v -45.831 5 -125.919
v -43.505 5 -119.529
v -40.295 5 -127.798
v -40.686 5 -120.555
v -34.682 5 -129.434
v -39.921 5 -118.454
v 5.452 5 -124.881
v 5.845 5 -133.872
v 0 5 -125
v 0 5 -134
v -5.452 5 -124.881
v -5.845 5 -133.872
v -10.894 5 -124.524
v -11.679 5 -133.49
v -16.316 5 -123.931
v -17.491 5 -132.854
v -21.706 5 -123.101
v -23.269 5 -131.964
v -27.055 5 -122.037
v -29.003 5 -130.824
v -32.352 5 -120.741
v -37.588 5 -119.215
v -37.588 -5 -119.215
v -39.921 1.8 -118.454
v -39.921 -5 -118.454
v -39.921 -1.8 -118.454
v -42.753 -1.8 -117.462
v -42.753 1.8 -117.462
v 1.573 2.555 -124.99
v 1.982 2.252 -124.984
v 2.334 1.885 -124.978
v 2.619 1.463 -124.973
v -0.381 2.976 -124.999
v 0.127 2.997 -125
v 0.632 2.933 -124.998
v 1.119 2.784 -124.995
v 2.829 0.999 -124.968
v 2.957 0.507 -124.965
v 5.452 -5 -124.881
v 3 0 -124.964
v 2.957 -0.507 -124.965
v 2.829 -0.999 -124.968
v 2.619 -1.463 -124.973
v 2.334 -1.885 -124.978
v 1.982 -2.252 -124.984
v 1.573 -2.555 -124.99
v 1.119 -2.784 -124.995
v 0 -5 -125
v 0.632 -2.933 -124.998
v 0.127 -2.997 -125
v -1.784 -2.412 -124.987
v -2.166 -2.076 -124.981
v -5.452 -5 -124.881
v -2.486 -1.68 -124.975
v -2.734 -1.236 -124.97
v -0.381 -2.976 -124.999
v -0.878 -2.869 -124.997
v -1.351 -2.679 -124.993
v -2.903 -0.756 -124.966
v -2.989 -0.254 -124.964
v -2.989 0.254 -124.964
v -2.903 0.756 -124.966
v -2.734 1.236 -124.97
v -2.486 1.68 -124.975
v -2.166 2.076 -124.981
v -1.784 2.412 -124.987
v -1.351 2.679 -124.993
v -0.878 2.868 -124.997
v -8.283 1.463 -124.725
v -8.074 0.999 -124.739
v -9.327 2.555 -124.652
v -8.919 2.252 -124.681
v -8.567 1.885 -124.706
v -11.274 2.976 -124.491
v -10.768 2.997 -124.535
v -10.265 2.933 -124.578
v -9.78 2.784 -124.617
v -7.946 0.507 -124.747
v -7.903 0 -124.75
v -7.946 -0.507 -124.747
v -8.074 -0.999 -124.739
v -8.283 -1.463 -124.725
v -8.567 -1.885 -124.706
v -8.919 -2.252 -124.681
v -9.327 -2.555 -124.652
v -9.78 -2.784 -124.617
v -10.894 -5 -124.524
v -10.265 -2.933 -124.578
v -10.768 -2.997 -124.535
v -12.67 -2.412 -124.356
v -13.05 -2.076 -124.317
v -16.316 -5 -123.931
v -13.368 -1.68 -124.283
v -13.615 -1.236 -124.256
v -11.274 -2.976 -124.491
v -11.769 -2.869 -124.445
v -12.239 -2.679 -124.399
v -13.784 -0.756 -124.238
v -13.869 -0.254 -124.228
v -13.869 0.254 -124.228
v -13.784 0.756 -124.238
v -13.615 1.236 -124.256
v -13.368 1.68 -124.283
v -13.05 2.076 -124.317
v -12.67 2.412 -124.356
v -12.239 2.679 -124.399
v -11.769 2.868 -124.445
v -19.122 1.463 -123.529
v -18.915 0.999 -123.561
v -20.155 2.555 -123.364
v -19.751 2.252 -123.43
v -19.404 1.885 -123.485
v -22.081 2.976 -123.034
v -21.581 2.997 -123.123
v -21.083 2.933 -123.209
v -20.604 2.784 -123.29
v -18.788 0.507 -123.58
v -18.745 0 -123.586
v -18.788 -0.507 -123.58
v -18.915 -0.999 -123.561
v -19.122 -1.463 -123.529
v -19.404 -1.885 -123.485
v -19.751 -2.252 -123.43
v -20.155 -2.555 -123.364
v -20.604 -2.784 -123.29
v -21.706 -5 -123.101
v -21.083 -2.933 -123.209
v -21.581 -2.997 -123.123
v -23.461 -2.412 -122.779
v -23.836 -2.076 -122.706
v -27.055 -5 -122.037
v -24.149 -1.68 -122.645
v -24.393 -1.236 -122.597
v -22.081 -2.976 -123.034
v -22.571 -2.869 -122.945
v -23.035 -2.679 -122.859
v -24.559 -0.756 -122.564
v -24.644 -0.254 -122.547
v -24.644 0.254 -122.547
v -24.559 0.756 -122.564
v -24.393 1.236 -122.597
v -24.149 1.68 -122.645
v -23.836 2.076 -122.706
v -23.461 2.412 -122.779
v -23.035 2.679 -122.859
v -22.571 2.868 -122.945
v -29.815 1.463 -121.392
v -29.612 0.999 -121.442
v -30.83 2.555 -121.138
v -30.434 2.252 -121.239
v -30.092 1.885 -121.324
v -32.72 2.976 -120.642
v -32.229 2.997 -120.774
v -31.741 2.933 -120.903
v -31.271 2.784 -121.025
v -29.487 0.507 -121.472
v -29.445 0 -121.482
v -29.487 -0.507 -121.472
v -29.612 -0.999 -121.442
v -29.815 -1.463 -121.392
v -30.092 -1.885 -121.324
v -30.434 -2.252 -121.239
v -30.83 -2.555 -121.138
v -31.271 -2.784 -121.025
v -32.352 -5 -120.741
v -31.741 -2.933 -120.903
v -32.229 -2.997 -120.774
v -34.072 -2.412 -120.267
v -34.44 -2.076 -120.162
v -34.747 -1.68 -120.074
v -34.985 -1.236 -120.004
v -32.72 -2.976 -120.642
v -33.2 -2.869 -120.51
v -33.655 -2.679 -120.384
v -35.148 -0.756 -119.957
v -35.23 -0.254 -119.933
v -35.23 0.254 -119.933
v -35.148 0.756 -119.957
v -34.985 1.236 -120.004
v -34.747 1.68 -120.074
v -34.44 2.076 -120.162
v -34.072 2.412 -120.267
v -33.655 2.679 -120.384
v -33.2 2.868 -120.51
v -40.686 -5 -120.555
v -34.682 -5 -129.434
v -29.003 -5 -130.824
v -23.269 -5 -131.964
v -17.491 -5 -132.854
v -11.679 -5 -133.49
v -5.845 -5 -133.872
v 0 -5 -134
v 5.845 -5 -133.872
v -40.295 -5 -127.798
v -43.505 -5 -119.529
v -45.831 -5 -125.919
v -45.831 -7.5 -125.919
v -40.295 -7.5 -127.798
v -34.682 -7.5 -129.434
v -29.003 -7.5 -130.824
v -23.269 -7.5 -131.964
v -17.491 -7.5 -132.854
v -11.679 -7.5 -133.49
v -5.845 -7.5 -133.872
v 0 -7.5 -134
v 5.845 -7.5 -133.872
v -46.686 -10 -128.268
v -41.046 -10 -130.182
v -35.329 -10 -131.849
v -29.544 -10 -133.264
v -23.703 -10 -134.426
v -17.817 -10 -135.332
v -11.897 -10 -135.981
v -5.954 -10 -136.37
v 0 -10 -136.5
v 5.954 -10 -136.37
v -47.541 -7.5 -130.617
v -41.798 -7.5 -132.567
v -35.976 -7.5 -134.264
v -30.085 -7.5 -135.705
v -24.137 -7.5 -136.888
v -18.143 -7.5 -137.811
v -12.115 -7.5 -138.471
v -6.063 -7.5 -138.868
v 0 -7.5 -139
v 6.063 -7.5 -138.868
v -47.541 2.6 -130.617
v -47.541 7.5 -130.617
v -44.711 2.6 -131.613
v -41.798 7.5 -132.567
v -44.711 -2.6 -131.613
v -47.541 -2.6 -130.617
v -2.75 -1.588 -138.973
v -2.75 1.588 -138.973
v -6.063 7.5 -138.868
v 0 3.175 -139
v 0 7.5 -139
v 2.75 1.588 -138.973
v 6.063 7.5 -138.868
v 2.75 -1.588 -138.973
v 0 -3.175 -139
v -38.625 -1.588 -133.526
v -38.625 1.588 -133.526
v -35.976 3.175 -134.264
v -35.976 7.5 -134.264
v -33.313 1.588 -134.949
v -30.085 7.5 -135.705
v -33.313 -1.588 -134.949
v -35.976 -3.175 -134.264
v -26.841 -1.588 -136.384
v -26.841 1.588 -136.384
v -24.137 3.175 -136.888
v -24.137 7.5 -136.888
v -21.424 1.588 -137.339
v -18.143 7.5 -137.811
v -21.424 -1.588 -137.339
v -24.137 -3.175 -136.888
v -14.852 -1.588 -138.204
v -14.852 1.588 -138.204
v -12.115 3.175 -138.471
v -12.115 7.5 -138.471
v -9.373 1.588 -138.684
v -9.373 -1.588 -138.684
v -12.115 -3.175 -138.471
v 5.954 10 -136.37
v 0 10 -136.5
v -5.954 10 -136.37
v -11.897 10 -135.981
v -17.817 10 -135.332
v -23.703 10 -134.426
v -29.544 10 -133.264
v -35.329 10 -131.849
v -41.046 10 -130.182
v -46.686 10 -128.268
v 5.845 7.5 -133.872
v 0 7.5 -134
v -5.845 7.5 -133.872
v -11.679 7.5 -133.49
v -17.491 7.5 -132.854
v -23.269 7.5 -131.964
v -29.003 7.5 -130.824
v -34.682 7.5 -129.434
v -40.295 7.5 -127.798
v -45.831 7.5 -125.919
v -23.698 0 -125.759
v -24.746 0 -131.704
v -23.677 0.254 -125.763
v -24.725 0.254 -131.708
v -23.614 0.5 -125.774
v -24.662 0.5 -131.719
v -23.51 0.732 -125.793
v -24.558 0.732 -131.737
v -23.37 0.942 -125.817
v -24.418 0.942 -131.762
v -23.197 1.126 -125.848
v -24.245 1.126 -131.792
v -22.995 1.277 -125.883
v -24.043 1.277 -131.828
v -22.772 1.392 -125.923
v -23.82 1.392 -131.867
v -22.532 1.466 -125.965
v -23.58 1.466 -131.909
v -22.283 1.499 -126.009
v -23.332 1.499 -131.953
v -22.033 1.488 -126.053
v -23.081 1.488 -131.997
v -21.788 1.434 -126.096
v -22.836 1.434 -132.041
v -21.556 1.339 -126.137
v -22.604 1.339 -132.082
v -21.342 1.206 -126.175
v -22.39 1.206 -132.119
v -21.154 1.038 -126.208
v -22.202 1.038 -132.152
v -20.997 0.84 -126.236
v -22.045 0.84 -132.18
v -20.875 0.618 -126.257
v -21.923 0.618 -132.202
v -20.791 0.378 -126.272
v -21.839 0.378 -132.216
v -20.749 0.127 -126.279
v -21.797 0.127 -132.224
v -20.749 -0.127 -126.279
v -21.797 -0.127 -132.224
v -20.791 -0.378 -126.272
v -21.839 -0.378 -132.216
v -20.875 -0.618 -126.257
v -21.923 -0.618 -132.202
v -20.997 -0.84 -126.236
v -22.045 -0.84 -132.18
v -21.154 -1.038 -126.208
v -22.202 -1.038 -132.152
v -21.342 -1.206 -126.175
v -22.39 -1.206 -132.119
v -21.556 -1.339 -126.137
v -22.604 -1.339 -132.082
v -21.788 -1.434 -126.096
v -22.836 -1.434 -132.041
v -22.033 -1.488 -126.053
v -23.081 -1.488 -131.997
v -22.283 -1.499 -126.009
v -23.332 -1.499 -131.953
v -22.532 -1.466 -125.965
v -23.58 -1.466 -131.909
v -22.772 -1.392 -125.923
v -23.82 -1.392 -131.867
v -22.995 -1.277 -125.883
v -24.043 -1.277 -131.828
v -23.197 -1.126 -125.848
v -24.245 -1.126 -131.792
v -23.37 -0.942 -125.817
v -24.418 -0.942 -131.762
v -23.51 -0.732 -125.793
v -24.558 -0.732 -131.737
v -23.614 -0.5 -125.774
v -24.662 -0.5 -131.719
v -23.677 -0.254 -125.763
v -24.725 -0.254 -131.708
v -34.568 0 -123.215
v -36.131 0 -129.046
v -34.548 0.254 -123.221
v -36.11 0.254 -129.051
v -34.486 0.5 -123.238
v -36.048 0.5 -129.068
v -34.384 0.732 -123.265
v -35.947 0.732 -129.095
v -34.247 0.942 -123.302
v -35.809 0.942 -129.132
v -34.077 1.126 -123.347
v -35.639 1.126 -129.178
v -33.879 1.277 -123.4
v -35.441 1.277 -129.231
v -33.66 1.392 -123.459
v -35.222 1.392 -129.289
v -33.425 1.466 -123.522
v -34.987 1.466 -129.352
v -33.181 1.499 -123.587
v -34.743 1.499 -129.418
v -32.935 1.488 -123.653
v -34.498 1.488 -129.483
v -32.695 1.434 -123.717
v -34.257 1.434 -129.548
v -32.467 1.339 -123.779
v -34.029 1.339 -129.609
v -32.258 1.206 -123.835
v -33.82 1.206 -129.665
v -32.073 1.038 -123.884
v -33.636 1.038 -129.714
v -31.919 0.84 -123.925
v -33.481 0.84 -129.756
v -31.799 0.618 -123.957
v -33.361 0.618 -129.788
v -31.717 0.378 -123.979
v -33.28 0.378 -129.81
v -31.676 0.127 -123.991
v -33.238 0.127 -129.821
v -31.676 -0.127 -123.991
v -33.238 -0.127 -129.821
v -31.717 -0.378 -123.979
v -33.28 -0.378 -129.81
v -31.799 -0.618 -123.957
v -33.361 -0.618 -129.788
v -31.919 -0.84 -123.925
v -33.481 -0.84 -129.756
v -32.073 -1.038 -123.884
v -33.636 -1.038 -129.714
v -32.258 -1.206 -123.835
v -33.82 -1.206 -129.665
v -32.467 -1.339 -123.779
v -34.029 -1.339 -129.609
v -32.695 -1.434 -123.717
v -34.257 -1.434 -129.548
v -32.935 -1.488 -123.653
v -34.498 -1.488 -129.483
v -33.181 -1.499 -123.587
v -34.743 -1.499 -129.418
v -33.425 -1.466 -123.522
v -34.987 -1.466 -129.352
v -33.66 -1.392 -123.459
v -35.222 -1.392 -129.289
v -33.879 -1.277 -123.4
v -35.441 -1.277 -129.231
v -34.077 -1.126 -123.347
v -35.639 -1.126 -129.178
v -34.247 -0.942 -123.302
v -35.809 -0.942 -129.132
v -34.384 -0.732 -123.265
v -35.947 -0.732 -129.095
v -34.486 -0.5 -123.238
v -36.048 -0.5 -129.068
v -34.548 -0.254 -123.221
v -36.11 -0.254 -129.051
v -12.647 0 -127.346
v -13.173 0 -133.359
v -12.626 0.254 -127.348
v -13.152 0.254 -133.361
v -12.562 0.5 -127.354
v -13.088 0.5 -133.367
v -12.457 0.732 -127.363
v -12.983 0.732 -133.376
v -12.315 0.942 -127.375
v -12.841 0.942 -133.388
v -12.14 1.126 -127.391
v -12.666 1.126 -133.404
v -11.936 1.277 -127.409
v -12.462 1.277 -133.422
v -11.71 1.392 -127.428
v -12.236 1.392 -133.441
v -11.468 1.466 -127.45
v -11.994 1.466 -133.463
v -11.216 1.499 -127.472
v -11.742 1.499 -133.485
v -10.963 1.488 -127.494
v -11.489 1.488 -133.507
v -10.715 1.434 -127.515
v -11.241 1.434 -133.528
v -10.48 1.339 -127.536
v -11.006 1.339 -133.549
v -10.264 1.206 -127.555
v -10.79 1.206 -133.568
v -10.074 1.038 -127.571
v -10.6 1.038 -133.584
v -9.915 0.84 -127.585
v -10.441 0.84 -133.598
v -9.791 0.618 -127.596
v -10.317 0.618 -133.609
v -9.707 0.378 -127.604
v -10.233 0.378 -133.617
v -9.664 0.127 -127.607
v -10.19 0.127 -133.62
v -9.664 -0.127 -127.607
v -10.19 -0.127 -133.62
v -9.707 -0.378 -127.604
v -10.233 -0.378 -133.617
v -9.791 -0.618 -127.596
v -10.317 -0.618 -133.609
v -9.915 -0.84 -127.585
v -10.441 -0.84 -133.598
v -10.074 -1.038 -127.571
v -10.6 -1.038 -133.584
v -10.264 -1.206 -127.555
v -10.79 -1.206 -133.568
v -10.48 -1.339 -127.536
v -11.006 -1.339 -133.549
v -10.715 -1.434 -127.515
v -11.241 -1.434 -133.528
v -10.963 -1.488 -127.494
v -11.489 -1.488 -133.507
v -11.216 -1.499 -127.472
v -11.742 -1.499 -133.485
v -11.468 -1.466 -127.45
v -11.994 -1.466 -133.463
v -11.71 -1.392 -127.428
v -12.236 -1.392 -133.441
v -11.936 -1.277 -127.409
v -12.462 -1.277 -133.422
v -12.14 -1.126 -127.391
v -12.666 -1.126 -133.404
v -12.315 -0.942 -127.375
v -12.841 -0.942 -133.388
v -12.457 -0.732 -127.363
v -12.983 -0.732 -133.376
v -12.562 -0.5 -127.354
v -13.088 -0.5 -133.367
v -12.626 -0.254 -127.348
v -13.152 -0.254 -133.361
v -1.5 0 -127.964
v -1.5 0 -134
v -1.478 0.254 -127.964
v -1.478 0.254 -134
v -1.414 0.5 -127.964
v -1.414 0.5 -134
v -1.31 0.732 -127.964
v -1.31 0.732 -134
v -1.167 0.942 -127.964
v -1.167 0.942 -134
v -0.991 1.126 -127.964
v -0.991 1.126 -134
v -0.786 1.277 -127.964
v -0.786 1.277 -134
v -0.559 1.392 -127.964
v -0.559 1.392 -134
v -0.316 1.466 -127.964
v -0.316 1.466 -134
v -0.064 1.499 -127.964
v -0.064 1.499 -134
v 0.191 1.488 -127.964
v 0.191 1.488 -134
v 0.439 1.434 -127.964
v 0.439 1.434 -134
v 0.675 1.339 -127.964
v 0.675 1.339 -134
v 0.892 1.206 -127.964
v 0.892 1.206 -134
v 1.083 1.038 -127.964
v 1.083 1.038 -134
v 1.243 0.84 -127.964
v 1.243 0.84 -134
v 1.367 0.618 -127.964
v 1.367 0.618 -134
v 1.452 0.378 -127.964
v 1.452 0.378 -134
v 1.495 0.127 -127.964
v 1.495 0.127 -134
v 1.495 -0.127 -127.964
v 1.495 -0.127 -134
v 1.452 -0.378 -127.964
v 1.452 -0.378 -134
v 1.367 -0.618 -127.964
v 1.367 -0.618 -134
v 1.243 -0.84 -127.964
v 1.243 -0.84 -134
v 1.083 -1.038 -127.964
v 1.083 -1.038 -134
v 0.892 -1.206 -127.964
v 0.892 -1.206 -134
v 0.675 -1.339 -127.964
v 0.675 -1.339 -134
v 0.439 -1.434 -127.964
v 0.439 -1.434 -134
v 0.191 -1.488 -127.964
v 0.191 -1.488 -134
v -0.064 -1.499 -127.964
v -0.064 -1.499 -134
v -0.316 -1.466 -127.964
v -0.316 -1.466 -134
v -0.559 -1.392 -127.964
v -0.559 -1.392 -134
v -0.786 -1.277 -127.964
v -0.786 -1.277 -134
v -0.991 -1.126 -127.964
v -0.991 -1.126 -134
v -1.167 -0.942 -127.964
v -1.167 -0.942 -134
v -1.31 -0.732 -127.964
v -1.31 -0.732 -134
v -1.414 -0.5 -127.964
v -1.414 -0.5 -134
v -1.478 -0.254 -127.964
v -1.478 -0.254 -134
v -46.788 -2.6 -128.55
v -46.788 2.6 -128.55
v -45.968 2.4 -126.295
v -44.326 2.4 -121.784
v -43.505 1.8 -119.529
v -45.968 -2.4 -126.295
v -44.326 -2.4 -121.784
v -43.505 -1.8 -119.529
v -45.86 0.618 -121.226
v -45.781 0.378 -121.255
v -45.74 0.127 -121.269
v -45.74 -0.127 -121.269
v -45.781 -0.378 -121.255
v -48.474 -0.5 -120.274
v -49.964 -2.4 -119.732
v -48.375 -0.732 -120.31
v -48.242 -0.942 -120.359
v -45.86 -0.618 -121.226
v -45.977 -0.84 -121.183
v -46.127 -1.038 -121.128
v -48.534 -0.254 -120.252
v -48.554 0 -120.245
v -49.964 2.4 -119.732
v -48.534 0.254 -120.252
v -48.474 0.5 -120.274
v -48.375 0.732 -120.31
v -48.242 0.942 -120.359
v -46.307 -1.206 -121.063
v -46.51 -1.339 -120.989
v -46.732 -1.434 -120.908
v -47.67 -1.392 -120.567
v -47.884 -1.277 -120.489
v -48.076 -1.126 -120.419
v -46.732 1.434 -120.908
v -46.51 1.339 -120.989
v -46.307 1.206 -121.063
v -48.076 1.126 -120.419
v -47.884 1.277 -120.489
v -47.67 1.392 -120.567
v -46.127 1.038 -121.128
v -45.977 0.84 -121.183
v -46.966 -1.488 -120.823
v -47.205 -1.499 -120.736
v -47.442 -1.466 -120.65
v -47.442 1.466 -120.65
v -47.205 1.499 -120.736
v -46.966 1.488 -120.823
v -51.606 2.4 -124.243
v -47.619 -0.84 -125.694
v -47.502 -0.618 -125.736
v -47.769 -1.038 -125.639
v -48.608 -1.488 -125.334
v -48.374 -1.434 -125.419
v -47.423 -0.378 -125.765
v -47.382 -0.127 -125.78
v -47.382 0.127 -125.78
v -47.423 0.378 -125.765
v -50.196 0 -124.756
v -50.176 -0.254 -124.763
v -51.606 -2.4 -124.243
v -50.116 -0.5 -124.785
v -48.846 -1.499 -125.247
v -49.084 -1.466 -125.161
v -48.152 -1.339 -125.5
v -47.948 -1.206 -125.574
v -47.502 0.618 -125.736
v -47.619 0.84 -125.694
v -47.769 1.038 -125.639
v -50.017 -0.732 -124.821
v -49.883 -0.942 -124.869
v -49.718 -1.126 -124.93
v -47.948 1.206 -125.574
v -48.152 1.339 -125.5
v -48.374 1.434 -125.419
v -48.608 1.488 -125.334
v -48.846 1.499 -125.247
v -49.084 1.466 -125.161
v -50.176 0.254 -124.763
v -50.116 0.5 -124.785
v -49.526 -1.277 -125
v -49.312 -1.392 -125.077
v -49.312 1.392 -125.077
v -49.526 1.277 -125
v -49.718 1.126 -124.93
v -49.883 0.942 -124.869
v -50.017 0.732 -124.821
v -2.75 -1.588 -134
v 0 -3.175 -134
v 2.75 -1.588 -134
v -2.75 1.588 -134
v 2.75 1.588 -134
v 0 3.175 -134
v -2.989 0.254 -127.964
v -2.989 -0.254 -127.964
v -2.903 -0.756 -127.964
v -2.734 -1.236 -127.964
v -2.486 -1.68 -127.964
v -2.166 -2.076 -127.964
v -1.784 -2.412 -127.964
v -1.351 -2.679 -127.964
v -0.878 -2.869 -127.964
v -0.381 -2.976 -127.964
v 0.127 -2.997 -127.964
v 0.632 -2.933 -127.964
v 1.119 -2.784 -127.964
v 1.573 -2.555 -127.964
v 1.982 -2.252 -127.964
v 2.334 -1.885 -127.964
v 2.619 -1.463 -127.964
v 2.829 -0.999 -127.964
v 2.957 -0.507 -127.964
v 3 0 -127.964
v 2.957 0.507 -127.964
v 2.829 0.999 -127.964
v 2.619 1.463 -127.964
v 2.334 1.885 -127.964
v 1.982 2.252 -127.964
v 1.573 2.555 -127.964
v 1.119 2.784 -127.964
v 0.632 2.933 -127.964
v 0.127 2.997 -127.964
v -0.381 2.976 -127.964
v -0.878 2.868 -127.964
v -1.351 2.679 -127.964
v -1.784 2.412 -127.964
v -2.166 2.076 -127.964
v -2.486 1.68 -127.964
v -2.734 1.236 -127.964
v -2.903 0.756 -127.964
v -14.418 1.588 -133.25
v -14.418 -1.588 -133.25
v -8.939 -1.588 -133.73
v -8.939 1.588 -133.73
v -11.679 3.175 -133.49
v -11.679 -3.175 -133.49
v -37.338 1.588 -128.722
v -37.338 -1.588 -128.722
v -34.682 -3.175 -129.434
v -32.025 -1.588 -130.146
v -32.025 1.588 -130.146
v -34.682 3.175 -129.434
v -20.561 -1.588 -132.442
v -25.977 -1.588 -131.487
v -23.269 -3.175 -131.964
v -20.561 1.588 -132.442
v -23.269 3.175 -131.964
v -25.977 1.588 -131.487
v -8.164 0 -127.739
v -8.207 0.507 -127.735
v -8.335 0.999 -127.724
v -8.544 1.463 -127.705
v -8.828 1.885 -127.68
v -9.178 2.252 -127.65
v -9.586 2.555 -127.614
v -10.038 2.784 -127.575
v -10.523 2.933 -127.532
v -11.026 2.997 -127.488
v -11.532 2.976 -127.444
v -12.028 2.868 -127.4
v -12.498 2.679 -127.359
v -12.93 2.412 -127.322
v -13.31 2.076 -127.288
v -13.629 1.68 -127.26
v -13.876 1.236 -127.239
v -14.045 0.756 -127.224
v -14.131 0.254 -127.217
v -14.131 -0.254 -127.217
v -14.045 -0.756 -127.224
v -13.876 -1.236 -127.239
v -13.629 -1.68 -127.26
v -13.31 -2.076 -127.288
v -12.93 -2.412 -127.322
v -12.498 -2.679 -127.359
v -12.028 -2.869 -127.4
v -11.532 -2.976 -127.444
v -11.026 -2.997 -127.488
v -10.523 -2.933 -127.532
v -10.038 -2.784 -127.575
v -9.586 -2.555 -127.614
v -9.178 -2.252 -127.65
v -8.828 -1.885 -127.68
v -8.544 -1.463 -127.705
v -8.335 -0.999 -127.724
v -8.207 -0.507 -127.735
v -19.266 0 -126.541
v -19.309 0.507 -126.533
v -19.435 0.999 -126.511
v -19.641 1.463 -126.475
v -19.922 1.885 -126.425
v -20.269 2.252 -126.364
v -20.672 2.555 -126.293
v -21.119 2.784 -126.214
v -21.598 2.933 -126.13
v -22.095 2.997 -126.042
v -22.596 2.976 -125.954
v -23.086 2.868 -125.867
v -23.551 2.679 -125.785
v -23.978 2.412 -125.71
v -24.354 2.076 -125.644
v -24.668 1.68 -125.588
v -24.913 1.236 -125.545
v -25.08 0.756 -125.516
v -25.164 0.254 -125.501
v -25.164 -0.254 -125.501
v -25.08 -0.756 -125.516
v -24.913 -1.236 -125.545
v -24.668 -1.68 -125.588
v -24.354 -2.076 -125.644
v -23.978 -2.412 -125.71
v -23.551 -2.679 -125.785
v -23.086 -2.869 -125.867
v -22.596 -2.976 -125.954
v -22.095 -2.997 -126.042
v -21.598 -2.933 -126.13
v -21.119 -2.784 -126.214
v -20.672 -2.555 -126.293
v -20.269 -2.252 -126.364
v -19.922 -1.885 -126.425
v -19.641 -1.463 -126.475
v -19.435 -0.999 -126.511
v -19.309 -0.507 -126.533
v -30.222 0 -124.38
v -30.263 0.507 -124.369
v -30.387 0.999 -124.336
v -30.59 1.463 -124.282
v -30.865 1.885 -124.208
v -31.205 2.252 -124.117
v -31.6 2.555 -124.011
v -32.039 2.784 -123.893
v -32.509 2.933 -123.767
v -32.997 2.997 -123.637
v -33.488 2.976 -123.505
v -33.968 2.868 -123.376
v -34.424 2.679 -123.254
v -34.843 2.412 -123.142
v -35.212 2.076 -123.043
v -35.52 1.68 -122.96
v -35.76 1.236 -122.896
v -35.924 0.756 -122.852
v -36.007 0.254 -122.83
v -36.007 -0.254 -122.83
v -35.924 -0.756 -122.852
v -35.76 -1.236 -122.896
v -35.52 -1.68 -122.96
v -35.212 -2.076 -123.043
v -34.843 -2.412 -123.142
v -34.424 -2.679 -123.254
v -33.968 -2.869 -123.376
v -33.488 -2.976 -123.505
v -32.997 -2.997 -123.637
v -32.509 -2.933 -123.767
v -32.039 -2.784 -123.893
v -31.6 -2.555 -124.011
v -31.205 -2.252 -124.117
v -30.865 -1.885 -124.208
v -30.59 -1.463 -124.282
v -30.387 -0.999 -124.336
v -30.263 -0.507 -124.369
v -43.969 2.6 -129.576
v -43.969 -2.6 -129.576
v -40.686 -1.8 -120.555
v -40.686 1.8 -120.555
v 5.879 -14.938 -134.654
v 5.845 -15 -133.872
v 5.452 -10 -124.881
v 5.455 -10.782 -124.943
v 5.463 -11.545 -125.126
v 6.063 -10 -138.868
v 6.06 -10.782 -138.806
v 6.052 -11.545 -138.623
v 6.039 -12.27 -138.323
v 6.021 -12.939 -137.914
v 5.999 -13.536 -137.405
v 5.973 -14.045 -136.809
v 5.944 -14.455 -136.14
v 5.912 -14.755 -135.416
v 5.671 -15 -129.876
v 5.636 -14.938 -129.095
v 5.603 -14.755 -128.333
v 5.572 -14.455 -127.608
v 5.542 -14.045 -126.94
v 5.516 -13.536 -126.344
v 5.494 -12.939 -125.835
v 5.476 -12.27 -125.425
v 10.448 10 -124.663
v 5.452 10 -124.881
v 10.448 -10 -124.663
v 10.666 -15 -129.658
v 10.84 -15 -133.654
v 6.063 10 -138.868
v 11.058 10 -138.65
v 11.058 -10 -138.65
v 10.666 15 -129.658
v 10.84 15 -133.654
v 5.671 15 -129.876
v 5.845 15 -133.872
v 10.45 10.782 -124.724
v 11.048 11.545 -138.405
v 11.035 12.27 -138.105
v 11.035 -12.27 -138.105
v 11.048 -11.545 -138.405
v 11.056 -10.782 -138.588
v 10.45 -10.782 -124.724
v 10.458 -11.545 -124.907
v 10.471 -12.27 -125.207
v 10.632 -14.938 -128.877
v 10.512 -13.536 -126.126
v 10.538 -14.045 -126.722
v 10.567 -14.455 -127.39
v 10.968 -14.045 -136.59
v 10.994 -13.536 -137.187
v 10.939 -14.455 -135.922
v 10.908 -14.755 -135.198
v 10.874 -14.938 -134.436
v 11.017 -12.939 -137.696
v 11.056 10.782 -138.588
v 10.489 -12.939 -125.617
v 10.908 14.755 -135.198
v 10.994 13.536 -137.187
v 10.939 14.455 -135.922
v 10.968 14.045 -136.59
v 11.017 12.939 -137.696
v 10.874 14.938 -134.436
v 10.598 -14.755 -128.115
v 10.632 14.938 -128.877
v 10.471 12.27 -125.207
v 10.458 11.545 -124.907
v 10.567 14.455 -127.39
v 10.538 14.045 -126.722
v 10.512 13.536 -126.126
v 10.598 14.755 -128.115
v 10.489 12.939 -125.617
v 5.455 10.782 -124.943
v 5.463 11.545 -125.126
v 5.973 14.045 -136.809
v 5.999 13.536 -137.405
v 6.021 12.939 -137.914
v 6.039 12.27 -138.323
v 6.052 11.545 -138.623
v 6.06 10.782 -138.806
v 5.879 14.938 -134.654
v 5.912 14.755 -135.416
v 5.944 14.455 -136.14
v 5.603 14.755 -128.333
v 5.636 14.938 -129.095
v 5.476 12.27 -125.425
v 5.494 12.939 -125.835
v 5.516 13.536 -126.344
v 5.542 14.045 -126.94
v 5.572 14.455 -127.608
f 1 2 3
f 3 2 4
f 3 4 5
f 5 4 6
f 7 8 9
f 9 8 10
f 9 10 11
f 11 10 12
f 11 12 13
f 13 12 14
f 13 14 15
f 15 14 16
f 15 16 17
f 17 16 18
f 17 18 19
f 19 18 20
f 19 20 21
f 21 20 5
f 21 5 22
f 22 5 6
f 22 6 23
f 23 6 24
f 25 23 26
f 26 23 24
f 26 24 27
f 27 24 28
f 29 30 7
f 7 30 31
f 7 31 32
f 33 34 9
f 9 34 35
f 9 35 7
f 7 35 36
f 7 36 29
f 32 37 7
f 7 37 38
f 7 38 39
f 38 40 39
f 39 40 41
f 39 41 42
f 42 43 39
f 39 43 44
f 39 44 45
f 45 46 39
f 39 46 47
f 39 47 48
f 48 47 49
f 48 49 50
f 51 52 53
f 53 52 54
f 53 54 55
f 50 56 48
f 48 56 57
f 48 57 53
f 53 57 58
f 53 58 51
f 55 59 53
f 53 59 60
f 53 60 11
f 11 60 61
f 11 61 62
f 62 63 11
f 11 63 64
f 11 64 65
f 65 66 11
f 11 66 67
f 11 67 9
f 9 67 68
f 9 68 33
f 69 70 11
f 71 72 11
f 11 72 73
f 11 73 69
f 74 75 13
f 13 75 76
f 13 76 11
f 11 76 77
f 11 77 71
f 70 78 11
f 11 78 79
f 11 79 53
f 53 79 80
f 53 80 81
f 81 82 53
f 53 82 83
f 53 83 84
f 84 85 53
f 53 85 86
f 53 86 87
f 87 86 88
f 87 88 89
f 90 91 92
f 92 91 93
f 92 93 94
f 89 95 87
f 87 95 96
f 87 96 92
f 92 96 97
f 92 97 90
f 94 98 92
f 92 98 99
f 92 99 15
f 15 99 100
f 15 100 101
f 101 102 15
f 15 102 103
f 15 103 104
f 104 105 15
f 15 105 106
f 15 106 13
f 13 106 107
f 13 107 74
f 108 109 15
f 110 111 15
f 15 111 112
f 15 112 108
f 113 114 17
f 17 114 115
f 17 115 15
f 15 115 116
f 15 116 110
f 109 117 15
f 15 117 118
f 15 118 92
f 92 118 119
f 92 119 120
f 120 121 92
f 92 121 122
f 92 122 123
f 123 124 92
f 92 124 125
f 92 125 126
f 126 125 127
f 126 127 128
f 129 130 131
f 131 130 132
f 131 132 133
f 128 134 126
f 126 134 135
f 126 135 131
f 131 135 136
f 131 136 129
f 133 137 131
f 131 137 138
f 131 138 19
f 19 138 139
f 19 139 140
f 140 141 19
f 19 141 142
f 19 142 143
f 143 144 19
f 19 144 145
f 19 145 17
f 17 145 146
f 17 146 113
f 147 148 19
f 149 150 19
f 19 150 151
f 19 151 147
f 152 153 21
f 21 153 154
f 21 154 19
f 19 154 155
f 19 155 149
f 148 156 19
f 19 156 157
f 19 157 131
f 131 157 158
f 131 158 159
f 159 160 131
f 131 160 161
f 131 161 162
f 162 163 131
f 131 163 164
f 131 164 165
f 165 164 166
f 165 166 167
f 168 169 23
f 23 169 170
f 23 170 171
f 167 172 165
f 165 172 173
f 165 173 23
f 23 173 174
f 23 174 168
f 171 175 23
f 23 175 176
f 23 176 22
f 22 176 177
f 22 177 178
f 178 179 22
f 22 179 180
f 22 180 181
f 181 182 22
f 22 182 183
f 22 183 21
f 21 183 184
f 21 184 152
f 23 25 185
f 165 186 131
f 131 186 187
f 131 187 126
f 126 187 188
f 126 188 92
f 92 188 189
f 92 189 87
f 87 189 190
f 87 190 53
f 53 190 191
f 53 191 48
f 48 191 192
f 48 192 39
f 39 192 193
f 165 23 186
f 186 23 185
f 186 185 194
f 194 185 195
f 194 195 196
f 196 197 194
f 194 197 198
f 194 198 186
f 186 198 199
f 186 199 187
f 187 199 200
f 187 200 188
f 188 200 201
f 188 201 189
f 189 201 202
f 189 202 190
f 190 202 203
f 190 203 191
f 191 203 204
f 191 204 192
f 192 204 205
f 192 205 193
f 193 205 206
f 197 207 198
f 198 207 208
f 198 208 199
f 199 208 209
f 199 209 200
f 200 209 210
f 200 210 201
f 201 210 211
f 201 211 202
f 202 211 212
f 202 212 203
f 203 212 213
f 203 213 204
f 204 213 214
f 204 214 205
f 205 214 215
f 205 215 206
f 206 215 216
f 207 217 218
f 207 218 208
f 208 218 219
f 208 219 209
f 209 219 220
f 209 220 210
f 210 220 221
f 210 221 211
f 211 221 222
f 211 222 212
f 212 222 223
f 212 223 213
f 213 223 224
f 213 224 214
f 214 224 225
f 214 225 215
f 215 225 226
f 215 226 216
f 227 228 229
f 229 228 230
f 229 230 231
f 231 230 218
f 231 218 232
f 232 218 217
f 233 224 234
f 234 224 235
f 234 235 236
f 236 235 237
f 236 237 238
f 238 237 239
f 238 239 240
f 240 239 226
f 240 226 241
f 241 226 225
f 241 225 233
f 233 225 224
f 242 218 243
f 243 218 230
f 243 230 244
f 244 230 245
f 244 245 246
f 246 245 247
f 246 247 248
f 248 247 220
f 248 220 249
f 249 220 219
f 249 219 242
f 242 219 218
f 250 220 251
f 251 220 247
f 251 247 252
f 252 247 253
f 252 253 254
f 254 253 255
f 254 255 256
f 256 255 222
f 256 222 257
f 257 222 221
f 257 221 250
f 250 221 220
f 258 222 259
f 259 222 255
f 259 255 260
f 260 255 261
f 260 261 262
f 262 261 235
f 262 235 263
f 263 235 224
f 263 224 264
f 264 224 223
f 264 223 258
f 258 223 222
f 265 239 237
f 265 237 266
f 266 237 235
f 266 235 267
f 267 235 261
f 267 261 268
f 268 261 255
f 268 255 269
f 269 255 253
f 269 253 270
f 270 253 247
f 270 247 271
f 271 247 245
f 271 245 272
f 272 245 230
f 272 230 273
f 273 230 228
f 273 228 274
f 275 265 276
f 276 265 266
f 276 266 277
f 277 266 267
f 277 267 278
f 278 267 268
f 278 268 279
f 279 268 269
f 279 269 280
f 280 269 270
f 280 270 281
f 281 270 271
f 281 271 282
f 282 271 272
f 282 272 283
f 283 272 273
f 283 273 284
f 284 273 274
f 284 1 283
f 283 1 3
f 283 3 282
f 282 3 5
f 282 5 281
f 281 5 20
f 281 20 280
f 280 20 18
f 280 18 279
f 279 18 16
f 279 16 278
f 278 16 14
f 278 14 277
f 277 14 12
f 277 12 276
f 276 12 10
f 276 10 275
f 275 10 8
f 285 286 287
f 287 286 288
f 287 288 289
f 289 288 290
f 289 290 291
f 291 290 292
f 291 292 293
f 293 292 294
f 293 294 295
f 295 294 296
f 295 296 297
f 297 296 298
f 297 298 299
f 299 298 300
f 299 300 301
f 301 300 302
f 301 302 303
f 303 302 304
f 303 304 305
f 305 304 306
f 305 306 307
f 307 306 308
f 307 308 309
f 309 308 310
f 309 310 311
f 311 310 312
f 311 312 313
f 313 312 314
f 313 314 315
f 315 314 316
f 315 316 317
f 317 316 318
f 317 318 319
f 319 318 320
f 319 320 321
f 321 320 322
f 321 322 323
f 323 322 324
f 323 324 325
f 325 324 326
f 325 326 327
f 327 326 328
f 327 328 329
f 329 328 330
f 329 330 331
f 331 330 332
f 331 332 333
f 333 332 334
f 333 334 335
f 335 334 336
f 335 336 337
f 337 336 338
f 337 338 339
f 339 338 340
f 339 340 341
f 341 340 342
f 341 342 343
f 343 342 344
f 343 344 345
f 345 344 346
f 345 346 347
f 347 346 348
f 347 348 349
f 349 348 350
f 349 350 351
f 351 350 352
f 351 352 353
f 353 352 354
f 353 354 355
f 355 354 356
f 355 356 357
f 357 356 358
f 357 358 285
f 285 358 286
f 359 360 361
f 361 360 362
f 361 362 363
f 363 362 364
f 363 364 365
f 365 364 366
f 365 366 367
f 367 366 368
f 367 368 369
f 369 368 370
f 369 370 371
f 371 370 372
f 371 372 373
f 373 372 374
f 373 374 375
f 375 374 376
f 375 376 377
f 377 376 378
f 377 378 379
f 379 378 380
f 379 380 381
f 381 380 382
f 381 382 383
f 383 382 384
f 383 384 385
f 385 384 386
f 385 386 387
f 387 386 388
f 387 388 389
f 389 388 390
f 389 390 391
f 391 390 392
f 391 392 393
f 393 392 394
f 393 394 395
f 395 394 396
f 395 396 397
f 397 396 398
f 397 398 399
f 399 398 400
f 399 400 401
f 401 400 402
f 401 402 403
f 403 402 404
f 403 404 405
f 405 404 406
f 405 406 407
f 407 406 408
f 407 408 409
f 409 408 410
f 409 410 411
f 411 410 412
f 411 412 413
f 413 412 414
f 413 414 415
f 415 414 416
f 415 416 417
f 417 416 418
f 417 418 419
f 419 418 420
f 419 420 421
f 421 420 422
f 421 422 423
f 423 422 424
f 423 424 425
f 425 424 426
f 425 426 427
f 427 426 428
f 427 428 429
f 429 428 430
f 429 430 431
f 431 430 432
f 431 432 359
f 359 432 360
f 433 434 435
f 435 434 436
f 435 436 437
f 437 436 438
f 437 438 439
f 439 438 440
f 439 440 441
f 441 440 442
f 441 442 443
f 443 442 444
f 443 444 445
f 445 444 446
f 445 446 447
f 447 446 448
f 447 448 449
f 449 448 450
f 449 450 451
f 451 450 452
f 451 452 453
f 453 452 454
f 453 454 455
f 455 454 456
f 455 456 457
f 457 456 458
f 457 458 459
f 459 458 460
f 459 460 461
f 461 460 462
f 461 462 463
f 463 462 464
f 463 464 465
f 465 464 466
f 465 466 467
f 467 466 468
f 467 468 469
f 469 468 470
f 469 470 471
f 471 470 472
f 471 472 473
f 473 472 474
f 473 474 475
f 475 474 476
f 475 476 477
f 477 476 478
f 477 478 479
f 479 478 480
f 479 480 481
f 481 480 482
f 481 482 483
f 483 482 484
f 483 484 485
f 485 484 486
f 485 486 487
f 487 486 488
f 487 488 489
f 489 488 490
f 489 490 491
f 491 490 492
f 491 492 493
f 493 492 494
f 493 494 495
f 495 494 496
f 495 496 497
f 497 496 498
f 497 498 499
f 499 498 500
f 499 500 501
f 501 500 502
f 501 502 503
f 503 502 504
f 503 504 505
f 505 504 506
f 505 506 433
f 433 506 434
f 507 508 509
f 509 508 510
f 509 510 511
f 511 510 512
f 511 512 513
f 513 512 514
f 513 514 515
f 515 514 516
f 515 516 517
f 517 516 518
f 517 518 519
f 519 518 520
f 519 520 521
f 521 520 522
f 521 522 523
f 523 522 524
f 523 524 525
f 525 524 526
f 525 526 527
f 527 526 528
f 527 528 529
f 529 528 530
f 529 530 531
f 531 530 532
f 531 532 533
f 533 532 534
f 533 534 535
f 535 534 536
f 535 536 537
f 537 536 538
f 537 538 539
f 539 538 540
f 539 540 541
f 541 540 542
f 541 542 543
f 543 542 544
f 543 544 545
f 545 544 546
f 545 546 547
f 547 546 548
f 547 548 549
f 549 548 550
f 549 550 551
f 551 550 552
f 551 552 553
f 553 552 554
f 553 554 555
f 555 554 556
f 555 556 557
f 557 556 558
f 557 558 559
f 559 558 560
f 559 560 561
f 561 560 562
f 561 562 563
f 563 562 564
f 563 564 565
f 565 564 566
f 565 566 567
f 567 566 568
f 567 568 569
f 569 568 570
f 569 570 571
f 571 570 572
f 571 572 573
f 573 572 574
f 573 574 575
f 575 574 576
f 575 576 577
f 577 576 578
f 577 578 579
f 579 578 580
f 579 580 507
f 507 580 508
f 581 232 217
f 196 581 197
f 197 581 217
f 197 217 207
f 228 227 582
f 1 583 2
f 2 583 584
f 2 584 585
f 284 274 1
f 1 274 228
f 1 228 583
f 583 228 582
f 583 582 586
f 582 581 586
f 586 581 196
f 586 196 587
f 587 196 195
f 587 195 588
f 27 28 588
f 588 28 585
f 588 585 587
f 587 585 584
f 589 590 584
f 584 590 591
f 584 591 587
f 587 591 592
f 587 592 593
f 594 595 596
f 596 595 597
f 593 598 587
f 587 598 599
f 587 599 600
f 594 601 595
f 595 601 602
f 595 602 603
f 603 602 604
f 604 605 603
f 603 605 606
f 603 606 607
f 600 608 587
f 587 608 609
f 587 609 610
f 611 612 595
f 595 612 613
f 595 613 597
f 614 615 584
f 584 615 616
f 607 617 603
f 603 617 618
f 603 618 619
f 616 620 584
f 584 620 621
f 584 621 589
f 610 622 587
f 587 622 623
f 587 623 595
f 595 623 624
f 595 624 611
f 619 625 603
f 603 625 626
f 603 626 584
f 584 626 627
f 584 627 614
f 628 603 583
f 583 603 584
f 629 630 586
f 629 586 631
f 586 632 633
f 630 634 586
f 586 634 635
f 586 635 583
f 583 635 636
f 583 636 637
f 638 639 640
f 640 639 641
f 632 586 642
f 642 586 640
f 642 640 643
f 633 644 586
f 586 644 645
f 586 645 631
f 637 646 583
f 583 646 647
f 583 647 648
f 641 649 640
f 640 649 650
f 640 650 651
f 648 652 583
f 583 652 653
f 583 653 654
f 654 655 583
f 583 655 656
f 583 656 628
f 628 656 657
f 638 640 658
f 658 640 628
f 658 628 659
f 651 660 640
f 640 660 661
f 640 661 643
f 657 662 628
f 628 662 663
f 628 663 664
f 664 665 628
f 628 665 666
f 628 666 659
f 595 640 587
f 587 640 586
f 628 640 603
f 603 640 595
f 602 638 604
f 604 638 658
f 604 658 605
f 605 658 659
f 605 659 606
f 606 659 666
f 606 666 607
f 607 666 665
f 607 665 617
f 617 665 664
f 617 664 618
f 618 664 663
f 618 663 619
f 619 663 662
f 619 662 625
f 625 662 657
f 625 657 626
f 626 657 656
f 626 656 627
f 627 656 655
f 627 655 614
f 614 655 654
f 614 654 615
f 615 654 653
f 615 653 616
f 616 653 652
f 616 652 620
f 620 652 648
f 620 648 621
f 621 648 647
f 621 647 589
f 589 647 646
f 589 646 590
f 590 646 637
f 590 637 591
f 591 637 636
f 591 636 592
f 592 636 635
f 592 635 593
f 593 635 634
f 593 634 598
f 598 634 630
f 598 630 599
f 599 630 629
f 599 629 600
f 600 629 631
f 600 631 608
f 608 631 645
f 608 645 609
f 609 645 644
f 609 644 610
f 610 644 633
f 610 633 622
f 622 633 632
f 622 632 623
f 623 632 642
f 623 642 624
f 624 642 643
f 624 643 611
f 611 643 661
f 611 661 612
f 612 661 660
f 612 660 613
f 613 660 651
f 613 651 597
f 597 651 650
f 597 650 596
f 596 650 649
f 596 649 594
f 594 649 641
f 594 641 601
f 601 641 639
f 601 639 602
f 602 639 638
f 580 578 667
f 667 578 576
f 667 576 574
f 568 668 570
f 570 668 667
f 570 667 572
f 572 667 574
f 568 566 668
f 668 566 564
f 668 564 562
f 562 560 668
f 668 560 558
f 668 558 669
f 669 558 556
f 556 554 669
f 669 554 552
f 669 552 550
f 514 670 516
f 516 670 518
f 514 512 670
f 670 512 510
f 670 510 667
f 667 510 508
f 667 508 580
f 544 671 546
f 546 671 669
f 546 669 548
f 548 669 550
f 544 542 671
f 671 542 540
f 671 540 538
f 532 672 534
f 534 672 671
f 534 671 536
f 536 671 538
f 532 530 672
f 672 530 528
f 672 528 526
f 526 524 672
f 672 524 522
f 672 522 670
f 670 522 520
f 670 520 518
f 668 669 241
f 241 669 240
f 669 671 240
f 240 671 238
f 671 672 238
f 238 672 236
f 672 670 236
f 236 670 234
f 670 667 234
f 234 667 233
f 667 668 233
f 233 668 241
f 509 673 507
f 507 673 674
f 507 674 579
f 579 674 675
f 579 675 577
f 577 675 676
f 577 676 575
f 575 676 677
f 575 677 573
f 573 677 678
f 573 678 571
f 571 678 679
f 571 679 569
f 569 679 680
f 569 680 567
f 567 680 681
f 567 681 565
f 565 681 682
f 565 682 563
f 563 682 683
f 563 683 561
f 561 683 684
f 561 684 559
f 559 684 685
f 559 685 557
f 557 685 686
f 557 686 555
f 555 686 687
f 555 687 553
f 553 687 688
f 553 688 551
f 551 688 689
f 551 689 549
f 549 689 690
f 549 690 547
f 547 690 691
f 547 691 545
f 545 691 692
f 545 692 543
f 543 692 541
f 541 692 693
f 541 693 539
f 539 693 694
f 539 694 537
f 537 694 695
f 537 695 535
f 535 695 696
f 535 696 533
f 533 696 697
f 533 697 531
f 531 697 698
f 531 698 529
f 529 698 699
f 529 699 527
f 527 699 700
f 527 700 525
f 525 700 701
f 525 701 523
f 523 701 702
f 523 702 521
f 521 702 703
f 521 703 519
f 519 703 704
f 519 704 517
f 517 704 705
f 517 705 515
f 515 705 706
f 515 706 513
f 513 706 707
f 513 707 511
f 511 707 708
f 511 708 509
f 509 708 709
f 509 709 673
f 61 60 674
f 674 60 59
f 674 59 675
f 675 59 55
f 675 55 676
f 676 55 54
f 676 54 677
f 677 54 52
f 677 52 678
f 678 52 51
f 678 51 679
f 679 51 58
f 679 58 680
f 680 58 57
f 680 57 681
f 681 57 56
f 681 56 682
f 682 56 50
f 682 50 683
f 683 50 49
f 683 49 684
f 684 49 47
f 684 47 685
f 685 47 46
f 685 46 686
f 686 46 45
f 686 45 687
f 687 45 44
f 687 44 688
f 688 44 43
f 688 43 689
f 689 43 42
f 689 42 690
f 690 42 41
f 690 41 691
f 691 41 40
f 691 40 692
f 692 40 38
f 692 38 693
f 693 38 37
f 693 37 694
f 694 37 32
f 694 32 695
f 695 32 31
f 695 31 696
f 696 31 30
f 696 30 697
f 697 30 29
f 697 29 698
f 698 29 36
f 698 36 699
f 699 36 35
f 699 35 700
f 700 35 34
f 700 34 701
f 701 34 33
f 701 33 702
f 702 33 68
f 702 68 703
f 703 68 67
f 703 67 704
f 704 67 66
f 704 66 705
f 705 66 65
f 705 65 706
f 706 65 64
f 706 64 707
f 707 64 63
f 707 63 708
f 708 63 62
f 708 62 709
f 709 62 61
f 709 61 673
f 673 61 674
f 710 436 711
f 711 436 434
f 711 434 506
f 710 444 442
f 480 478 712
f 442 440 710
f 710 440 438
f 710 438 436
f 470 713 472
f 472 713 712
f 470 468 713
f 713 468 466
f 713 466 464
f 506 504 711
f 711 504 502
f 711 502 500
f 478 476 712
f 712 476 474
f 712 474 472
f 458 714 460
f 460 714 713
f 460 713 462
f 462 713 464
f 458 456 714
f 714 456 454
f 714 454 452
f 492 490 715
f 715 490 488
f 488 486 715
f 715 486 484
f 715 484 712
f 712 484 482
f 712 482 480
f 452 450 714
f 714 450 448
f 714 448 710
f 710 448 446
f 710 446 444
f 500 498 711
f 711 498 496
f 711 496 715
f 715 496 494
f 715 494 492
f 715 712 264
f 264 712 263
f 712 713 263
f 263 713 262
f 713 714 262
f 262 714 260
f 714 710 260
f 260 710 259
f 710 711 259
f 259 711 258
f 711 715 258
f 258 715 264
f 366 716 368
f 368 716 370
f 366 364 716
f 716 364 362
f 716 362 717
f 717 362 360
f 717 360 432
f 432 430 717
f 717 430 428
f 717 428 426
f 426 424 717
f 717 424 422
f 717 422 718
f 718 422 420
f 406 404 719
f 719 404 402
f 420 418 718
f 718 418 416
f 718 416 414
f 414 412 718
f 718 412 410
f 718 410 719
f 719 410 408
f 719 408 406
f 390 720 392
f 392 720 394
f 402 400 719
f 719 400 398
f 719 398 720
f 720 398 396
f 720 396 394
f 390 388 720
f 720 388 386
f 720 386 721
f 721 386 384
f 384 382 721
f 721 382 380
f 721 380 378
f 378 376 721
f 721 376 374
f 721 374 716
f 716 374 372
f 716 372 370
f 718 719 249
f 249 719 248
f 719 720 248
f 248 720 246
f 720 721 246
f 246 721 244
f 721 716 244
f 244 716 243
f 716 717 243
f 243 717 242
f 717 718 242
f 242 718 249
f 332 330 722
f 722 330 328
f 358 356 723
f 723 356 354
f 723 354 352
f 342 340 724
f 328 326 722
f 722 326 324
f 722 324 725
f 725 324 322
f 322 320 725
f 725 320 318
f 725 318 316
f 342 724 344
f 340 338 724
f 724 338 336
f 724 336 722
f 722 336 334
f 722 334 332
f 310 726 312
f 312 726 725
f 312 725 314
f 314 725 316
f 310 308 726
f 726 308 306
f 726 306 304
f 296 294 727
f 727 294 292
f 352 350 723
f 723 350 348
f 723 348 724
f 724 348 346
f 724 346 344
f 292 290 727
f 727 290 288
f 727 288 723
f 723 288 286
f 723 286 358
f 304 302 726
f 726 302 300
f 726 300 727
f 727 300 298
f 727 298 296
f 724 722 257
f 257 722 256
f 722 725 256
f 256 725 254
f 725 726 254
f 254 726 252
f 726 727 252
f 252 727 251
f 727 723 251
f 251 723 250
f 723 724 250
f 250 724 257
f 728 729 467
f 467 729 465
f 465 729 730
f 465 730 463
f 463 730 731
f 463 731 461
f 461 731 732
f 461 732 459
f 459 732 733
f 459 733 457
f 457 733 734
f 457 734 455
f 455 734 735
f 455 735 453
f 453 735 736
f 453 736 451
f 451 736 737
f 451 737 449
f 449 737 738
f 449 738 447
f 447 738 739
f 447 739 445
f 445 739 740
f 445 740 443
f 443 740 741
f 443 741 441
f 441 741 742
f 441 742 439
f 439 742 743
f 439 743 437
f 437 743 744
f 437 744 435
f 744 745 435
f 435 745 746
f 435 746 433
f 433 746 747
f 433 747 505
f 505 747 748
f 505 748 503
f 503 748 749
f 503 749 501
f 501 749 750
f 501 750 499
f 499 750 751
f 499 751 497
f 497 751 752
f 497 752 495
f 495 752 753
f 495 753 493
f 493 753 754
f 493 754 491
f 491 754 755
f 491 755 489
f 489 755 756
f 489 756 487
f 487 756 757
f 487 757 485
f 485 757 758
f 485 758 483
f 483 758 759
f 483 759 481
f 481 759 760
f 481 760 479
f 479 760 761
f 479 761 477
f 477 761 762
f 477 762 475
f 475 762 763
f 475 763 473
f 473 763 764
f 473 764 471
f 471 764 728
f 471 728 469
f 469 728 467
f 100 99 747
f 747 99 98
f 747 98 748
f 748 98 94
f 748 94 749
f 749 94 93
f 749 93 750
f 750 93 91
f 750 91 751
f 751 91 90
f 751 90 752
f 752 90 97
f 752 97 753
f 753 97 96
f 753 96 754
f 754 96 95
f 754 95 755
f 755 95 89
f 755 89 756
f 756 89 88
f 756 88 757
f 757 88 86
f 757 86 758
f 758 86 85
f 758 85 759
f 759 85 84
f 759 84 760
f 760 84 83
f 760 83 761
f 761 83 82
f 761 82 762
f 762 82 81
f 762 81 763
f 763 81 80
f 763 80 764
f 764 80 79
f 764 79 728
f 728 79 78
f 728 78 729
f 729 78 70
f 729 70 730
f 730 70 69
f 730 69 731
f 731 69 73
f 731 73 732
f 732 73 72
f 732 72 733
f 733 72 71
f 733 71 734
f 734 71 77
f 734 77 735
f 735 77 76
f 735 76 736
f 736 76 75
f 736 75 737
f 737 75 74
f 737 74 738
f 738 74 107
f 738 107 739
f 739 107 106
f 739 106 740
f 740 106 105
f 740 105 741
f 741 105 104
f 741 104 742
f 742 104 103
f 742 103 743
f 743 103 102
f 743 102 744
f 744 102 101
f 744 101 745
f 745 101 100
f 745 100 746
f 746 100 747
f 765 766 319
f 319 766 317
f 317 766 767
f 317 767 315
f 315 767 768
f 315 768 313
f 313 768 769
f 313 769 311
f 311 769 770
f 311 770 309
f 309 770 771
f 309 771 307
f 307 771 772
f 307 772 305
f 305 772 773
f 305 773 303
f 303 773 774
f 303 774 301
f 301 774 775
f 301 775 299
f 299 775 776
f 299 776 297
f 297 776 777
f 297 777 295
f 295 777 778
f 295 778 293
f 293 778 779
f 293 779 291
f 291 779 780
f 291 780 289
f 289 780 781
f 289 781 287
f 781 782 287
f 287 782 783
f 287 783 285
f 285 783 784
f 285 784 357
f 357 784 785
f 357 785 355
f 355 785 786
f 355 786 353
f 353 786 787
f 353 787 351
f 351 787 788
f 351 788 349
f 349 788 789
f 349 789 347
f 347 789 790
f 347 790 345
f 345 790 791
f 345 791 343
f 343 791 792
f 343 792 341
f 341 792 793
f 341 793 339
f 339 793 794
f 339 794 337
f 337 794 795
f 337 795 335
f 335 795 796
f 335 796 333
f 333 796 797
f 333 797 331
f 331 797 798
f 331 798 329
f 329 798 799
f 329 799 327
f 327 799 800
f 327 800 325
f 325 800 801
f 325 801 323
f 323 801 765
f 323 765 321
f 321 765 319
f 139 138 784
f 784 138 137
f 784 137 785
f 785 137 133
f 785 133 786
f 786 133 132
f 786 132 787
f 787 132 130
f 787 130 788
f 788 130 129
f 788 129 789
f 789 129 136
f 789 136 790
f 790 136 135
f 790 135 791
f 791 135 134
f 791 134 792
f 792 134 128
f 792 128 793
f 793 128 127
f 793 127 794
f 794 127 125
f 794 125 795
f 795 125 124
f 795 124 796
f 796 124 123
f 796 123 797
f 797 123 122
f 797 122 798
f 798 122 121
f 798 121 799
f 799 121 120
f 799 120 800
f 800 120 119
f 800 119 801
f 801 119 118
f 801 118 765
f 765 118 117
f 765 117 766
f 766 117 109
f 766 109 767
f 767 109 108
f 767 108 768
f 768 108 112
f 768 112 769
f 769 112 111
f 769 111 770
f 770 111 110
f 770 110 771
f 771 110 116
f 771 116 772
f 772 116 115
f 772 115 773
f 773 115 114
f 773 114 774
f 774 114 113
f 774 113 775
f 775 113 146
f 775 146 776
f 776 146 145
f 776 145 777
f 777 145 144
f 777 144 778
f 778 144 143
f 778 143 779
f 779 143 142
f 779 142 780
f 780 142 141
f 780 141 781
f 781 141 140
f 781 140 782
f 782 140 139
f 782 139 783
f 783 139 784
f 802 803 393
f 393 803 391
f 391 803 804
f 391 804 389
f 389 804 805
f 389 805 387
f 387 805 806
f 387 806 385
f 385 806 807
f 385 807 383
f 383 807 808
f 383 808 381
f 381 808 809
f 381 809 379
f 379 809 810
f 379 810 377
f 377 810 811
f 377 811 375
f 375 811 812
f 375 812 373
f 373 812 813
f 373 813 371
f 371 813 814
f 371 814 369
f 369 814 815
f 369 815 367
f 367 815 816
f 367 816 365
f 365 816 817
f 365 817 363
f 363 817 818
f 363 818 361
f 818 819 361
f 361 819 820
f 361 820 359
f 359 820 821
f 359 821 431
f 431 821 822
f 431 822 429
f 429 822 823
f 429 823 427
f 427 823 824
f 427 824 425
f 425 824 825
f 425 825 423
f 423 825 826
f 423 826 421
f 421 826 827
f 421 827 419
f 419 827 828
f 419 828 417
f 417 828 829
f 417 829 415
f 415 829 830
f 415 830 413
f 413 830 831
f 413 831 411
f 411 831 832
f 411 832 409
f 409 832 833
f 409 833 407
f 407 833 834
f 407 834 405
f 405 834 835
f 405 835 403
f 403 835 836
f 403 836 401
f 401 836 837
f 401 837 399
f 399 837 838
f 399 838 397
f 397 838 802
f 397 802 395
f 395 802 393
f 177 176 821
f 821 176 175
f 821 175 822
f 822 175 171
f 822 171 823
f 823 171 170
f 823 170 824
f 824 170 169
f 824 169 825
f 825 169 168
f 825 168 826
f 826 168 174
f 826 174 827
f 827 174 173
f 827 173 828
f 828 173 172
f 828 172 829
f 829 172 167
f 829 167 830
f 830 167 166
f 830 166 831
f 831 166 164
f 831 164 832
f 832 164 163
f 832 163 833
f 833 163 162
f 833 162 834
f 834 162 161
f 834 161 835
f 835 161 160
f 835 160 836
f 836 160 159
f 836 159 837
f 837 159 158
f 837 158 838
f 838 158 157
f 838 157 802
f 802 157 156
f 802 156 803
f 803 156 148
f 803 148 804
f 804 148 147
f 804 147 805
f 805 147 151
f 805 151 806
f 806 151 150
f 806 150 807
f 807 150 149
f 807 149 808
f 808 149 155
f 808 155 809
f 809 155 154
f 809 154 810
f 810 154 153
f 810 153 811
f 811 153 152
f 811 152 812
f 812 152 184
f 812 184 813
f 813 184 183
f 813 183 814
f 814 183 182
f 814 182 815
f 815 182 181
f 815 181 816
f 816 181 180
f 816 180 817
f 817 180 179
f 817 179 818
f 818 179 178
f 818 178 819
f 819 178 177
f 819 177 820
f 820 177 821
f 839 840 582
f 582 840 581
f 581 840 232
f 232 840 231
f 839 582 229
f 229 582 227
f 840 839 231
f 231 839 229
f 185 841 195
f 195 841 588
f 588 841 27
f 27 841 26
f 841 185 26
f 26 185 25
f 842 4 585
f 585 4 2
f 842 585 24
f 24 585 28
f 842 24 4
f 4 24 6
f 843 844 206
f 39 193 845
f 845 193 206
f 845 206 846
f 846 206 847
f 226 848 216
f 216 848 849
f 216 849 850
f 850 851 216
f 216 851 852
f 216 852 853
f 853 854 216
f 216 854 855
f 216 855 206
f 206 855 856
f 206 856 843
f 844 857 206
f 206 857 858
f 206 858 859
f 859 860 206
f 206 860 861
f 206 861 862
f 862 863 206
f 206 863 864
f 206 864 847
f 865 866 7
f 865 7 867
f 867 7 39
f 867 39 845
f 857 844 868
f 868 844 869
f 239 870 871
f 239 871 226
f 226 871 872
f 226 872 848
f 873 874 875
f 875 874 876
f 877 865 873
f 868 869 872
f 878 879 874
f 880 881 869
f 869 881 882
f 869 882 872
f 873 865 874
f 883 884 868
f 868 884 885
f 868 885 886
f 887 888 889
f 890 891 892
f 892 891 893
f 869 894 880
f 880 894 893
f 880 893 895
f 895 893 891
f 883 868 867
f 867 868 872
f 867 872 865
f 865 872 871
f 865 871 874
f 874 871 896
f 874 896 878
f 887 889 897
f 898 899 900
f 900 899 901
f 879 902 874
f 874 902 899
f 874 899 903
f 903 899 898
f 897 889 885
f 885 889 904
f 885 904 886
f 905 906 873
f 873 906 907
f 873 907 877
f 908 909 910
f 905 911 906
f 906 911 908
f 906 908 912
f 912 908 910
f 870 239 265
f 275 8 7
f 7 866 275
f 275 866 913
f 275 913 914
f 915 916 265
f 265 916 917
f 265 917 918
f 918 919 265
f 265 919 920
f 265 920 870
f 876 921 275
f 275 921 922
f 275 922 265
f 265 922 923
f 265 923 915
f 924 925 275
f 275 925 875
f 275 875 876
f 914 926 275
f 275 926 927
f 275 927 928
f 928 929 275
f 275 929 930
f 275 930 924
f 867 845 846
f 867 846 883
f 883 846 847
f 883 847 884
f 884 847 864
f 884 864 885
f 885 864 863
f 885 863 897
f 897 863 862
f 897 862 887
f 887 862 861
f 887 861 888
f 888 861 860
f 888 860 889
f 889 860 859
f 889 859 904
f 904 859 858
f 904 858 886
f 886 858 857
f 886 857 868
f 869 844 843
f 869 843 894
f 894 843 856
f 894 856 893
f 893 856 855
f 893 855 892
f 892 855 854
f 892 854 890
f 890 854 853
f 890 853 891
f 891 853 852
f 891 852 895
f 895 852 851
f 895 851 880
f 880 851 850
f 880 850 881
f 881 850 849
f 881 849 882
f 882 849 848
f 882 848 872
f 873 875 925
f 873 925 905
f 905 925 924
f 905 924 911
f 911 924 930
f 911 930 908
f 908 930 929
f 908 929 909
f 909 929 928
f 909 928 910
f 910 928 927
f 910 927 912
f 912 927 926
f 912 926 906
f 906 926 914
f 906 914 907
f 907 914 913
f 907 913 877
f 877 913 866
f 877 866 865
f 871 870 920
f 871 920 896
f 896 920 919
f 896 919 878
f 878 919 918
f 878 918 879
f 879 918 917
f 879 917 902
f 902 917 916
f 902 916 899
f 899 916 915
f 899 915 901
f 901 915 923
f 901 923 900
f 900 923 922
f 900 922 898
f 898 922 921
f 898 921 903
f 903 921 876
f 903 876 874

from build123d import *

# Parameters (mm, degrees)
REVOLVE_1_ANGLE          = 40
SKETCH_4_W               = 4.8
SKETCH_4_H               = 4.8
EXTRUDE_1_DEPTH          = 6
SKETCH_7_R               = 1.5
CUT_EXTRUDE_4_DEPTH      = 95.895882206
SKETCH_13_R              = 1.5
CUT_EXTRUDE_7_DEPTH      = 57.80711304
CUT_EXTRUDE_8_DEPTH      = 5
SKETCH_16_W              = 3
SKETCH_16_H              = 3
PATTERN_CIRCULAR_1_COUNT = 4
PATTERN_CIRCULAR_1_ANGLE = 15
SKETCH_10_W              = 2.2
SKETCH_10_H              = 5.2
CUT_EXTRUDE_5_DEPTH      = 3
SKETCH_11_W              = 47.375376564
SKETCH_11_H              = 32.407082742
CUT_EXTRUDE_6_DEPTH      = 149.607349927
SKETCH_12_W              = 14
SKETCH_12_H              = 30
EXTRUDE_2_DEPTH          = 5
FILLET_1_R               = 5


# Read off the part's stored shape, not the designer's step: 旋转1
with BuildPart() as part:
    # 旋转1 outline → 旋转1 (revolve)
    with BuildSketch(Plane(origin=(0, 0, 0), x_dir=(0.3420201433256701, 0, -0.9396926207859079), z_dir=(0.9396926207859079, 0, 0.3420201433256701))):
        Polygon((134, 5), (125, 5), (125, -5), (134, -5), (134, -7.5), (136.5, -10), (139, -7.5), (139, 7.5), (136.5, 10), (134, 7.5), align=None)
    revolve(axis=Axis((0, 0, 0), (0, 1, 0)), revolution_arc=REVOLVE_1_ANGLE)

    # 草图4 → 凸台-拉伸1 (add)
    with BuildSketch(Plane(origin=(0, 0, 0), x_dir=(0.3420201433256631, 0, 0.9396926207859104), z_dir=(-0.9396926207859104, 0, 0.3420201433256631))):
        with Locations((-132, 0)):
            Rectangle(SKETCH_4_W, SKETCH_4_H)
    extrude(amount=EXTRUDE_1_DEPTH)

    # 草图7 → 切除-拉伸4 (cut, through all)
    with BuildSketch(Plane(origin=(-45.967507263, 0, -126.294688234), x_dir=(-0.9396926207859105, 0, 0.3420201433256632), z_dir=(-0.3420201433256632, 0, -0.9396926207859105))):
        with Locations((3, 0)):
            Circle(SKETCH_7_R)
    extrude(amount=-CUT_EXTRUDE_4_DEPTH, mode=Mode.SUBTRACT)

    # 草图13 → 切除-拉伸7 (cut, through all)
    with BuildSketch(Plane(origin=(0, 0, -139), x_dir=(-1, 0, 0), z_dir=(0, 0, -1))):
        Circle(SKETCH_13_R)
    cut_extrude_7 = extrude(amount=-CUT_EXTRUDE_7_DEPTH, mode=Mode.SUBTRACT)

    # 草图14 → 切除-拉伸8 (cut)
    with BuildSketch(Plane(origin=(0, 0, -139), x_dir=(-1, 0, 0), z_dir=(0, 0, -1))):
        Polygon((0, -3.175426481), (2.75, -1.58771324), (2.75, 1.58771324), (0, 3.175426481), (-2.75, 1.58771324), (-2.75, -1.58771324), align=None)
    cut_extrude_8 = extrude(amount=-CUT_EXTRUDE_8_DEPTH, mode=Mode.SUBTRACT)

    # 草图16 → 切除-旋转1 (revolve, cut)
    with BuildSketch(Plane(origin=(0, 0, 0), x_dir=(1, 0, 0), z_dir=(0, 1, 0)), mode=Mode.PRIVATE) as cut_revolve_1_sk:
        with Locations((1.5, 126.463994814)):
            Rectangle(SKETCH_16_W, SKETCH_16_H)
    cut_revolve_1 = revolve(cut_revolve_1_sk.sketch.rotate(Axis((0, 0, 999.226836895), (0, 0, -1)), 180), axis=Axis((0, 0, 999.226836895), (0, 0, -1)), mode=Mode.SUBTRACT)

    # 阵列(圆周)1: 切除-拉伸7, 切除-拉伸8, 切除-旋转1 ×4 about axis
    pattern_circular_1_axis = Axis((0, 0, 0), (0, 1, 0))
    add([cut_extrude_7.rotate(pattern_circular_1_axis, i * PATTERN_CIRCULAR_1_ANGLE / (PATTERN_CIRCULAR_1_COUNT - 1)) for i in range(1, PATTERN_CIRCULAR_1_COUNT)], mode=Mode.SUBTRACT)
    add([cut_extrude_8.rotate(pattern_circular_1_axis, i * PATTERN_CIRCULAR_1_ANGLE / (PATTERN_CIRCULAR_1_COUNT - 1)) for i in range(1, PATTERN_CIRCULAR_1_COUNT)], mode=Mode.SUBTRACT)
    add([cut_revolve_1.rotate(pattern_circular_1_axis, i * PATTERN_CIRCULAR_1_ANGLE / (PATTERN_CIRCULAR_1_COUNT - 1)) for i in range(1, PATTERN_CIRCULAR_1_COUNT)], mode=Mode.SUBTRACT)

    # 草图10 → 切除-拉伸5 (cut)
    with BuildSketch(Plane(origin=(0, 0, 0), x_dir=(0.3420201433256631, 0, 0.9396926207859104), z_dir=(-0.9396926207859104, 0, 0.3420201433256631))):
        with Locations((-137.9, 0)):
            Rectangle(SKETCH_10_W, SKETCH_10_H)
        Polygon((-127.2, 5), (-125, 5), (-123.655375964, 5), (-123.655375964, 1.8), (-125, 1.8), (-127.2, 1.8), align=None)
        Polygon((-127.2, -1.8), (-125, -1.8), (-123.655375964, -1.8), (-123.655375964, -5), (-125, -5), (-127.2, -5), align=None)
    extrude(amount=-CUT_EXTRUDE_5_DEPTH, mode=Mode.SUBTRACT)

    # 草图11 → 切除-拉伸6 (cut, through all)
    with BuildSketch(Plane(origin=(0, 0, 0), x_dir=(0, -1, 0), z_dir=(0.9990482215818578, 0, 0.0436193873653361))):
        with Locations((-1.017262687, 125.577370773)):
            Rectangle(SKETCH_11_W, SKETCH_11_H)
    extrude(amount=CUT_EXTRUDE_6_DEPTH, mode=Mode.SUBTRACT)

    # 草图12 → 凸台-拉伸2 (add)
    with BuildSketch(Plane(origin=(0, 0, 0), x_dir=(0.043619387365336125, 0, -0.9990482215818578), z_dir=(0.9990482215818577, 0, 0.04361938736533612))):
        with Locations((132, 0)):
            Rectangle(SKETCH_12_W, SKETCH_12_H)
    extrude(amount=EXTRUDE_2_DEPTH)

    # 圆角1
    fillet_1_edges = [part.edges().sort_by_distance(p)[0] for p in [
        (7.950043975, 15, -124.771979229),
        (7.950043975, -15, -124.771979229),
        (8.560715398, -15, -138.758654331),
        (8.560715398, 15, -138.758654331),
    ]]
    fillet(fillet_1_edges, radius=FILLET_1_R)


solid = part.part
